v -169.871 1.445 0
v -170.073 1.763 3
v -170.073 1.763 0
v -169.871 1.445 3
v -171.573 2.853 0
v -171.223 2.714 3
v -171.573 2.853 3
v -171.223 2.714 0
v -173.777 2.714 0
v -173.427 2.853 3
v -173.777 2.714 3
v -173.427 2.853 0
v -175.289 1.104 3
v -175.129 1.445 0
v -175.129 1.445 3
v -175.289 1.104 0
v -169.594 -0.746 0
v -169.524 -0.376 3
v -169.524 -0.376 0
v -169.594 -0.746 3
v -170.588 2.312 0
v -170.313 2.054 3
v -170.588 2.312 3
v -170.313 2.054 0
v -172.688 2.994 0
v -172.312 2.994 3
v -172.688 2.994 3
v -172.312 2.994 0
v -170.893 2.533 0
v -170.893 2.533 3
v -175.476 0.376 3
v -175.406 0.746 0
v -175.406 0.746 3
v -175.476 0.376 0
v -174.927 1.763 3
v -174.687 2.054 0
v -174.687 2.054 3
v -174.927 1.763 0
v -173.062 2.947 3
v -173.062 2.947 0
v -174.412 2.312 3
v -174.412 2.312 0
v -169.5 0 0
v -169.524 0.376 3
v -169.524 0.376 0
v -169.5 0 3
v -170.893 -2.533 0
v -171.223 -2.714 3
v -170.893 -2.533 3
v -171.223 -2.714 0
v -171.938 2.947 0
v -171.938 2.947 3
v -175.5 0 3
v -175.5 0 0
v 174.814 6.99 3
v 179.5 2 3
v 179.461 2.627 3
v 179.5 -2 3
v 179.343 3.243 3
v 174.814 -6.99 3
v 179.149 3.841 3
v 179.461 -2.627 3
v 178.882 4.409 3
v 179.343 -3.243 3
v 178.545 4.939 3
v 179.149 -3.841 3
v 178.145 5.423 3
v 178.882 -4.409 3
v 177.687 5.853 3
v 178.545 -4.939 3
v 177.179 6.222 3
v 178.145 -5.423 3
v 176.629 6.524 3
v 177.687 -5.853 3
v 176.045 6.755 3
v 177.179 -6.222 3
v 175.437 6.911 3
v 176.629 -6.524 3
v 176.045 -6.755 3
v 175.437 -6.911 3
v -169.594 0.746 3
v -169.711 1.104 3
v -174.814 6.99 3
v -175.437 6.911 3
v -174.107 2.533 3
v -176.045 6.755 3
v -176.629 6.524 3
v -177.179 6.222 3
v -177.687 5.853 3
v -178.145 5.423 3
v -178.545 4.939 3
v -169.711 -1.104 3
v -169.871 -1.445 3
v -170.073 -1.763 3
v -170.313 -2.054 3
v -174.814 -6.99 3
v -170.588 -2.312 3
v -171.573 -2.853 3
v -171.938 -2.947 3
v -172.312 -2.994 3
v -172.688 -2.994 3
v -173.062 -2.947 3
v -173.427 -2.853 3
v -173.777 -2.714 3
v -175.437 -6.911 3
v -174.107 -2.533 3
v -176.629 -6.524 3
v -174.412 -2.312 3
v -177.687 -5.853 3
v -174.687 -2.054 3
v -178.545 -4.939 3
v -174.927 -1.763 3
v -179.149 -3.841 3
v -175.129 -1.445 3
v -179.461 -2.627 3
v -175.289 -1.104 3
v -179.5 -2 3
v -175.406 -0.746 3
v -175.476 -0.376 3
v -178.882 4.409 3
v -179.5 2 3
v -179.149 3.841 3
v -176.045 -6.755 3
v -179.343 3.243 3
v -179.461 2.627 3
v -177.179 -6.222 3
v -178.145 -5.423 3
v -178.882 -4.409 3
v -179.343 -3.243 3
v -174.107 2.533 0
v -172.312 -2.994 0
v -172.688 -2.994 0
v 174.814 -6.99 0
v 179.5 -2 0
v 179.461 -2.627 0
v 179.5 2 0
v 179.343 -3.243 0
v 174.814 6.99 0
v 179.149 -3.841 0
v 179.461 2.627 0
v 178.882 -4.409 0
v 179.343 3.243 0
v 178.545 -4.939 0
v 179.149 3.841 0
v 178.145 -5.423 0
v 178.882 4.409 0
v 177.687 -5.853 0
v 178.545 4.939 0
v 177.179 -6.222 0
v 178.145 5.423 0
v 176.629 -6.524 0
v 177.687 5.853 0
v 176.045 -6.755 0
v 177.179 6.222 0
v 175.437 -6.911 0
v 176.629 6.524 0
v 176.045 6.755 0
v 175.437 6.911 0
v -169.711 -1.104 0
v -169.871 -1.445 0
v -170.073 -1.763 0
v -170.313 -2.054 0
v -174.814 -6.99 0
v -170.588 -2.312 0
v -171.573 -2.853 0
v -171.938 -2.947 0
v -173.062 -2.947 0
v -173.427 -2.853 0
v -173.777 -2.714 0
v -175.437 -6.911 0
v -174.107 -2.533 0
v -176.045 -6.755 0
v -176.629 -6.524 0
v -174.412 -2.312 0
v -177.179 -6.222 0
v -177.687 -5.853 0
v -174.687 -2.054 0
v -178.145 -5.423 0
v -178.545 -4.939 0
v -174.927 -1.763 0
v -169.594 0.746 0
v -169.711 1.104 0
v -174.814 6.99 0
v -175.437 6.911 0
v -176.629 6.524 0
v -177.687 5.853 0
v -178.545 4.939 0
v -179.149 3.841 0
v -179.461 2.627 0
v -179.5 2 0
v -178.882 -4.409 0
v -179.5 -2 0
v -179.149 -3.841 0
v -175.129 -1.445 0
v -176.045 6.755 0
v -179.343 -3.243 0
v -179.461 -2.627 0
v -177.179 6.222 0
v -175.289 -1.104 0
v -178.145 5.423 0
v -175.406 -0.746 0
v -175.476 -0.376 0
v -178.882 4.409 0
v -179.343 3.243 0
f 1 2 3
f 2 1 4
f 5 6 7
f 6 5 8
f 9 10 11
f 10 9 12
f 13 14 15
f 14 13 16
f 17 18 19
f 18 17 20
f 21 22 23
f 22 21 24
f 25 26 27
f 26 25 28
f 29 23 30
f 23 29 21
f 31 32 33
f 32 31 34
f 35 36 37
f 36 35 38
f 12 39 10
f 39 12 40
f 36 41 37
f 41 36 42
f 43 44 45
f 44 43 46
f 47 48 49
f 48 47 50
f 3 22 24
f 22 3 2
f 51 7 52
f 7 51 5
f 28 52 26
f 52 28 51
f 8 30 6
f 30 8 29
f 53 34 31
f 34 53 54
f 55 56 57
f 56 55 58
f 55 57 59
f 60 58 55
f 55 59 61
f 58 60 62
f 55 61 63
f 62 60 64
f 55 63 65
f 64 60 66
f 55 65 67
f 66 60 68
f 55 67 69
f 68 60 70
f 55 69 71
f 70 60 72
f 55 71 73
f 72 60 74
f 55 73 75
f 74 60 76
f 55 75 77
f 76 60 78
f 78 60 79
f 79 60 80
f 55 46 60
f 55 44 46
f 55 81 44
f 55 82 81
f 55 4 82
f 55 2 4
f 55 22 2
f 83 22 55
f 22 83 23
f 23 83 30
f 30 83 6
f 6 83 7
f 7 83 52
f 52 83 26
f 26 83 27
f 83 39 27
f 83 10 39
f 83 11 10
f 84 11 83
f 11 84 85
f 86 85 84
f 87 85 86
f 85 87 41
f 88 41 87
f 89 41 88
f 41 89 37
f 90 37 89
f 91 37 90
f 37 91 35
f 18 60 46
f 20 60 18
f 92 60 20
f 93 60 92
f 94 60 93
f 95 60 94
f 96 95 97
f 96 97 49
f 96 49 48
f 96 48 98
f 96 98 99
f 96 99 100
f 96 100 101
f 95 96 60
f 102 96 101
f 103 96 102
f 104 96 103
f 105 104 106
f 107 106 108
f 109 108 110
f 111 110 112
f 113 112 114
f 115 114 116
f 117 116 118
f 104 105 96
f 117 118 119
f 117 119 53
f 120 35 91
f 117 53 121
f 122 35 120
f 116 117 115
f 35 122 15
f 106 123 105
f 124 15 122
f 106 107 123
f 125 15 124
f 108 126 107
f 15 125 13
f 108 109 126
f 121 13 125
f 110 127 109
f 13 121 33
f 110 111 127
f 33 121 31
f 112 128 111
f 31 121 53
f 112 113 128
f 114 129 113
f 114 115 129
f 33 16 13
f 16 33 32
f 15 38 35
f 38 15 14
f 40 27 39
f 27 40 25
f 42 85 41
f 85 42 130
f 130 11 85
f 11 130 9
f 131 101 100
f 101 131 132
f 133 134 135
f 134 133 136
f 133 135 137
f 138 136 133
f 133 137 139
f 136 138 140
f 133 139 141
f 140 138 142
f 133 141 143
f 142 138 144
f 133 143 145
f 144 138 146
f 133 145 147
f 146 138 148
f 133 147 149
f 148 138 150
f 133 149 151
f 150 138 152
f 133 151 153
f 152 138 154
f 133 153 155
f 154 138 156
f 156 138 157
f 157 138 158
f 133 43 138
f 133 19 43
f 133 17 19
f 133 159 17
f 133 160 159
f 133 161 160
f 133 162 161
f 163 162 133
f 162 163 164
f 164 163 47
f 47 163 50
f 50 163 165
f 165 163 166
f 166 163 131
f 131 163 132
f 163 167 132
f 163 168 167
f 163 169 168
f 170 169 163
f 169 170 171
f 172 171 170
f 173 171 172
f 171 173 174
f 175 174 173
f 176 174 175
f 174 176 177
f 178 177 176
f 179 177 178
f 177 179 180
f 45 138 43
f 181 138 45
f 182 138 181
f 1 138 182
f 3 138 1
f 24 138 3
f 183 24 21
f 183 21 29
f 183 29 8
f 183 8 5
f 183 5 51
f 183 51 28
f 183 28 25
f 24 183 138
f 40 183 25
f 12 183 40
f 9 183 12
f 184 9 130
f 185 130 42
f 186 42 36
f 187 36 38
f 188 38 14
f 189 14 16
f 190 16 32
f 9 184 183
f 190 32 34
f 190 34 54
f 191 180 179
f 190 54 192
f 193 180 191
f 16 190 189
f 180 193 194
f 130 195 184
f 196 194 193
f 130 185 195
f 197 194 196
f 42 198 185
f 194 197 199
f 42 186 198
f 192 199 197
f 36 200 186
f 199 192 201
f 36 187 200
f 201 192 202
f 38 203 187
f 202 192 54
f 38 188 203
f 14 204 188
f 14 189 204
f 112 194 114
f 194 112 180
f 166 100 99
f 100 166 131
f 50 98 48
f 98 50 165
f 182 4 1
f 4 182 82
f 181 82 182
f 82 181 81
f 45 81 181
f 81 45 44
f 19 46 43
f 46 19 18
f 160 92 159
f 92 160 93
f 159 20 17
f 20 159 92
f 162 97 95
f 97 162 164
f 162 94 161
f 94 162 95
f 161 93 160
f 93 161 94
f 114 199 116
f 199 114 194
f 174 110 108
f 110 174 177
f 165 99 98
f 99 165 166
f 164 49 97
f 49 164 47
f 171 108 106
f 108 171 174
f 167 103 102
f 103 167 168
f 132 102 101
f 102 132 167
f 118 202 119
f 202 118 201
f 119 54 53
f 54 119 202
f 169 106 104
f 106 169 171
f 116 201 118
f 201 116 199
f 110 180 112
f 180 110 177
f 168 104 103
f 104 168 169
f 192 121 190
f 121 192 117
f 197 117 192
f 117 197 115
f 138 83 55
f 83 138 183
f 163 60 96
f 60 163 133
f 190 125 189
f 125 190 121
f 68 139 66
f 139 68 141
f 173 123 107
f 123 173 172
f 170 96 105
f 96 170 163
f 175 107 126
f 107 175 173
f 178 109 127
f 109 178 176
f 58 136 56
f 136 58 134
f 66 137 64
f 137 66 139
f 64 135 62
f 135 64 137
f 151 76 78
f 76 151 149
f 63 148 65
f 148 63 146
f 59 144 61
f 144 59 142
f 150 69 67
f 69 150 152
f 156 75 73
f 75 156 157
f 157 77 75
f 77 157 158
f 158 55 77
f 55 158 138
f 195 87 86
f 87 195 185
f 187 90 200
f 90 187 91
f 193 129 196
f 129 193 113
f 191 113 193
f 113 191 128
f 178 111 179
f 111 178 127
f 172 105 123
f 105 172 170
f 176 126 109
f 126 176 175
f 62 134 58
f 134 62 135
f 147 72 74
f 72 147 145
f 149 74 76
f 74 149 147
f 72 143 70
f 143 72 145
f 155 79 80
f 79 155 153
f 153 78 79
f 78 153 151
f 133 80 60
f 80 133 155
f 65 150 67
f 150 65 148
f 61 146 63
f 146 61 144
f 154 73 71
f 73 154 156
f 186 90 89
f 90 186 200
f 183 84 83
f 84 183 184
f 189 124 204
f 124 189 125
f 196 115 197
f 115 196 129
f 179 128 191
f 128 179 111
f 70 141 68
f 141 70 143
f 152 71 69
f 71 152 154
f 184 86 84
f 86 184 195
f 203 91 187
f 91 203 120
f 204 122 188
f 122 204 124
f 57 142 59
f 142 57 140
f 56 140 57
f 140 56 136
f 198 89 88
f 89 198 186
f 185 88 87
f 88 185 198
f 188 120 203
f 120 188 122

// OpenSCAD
$fn = 50;


difference() {
	union() {
		hull() {
			translate(v = [-174.5000000000, 2.0000000000, 0]) {
				cylinder(h = 3, r = 5);
			}
			translate(v = [174.5000000000, 2.0000000000, 0]) {
				cylinder(h = 3, r = 5);
			}
			translate(v = [-174.5000000000, -2.0000000000, 0]) {
				cylinder(h = 3, r = 5);
			}
			translate(v = [174.5000000000, -2.0000000000, 0]) {
				cylinder(h = 3, r = 5);
			}
		}
	}
	union() {
		translate(v = [-172.5000000000, 0.0000000000, 0]) {
			cylinder(h = 3, r = 3.0000000000);
		}
		translate(v = [-172.5000000000, 0.0000000000, 0]) {
			cylinder(h = 3, r = 1.5000000000);
		}
		translate(v = [-172.5000000000, 0.0000000000, 0]) {
			cylinder(h = 3, r = 1.5000000000);
		}
		translate(v = [-172.5000000000, 0.0000000000, 0]) {
			cylinder(h = 3, r = 1.5000000000);
		}
	}
}
